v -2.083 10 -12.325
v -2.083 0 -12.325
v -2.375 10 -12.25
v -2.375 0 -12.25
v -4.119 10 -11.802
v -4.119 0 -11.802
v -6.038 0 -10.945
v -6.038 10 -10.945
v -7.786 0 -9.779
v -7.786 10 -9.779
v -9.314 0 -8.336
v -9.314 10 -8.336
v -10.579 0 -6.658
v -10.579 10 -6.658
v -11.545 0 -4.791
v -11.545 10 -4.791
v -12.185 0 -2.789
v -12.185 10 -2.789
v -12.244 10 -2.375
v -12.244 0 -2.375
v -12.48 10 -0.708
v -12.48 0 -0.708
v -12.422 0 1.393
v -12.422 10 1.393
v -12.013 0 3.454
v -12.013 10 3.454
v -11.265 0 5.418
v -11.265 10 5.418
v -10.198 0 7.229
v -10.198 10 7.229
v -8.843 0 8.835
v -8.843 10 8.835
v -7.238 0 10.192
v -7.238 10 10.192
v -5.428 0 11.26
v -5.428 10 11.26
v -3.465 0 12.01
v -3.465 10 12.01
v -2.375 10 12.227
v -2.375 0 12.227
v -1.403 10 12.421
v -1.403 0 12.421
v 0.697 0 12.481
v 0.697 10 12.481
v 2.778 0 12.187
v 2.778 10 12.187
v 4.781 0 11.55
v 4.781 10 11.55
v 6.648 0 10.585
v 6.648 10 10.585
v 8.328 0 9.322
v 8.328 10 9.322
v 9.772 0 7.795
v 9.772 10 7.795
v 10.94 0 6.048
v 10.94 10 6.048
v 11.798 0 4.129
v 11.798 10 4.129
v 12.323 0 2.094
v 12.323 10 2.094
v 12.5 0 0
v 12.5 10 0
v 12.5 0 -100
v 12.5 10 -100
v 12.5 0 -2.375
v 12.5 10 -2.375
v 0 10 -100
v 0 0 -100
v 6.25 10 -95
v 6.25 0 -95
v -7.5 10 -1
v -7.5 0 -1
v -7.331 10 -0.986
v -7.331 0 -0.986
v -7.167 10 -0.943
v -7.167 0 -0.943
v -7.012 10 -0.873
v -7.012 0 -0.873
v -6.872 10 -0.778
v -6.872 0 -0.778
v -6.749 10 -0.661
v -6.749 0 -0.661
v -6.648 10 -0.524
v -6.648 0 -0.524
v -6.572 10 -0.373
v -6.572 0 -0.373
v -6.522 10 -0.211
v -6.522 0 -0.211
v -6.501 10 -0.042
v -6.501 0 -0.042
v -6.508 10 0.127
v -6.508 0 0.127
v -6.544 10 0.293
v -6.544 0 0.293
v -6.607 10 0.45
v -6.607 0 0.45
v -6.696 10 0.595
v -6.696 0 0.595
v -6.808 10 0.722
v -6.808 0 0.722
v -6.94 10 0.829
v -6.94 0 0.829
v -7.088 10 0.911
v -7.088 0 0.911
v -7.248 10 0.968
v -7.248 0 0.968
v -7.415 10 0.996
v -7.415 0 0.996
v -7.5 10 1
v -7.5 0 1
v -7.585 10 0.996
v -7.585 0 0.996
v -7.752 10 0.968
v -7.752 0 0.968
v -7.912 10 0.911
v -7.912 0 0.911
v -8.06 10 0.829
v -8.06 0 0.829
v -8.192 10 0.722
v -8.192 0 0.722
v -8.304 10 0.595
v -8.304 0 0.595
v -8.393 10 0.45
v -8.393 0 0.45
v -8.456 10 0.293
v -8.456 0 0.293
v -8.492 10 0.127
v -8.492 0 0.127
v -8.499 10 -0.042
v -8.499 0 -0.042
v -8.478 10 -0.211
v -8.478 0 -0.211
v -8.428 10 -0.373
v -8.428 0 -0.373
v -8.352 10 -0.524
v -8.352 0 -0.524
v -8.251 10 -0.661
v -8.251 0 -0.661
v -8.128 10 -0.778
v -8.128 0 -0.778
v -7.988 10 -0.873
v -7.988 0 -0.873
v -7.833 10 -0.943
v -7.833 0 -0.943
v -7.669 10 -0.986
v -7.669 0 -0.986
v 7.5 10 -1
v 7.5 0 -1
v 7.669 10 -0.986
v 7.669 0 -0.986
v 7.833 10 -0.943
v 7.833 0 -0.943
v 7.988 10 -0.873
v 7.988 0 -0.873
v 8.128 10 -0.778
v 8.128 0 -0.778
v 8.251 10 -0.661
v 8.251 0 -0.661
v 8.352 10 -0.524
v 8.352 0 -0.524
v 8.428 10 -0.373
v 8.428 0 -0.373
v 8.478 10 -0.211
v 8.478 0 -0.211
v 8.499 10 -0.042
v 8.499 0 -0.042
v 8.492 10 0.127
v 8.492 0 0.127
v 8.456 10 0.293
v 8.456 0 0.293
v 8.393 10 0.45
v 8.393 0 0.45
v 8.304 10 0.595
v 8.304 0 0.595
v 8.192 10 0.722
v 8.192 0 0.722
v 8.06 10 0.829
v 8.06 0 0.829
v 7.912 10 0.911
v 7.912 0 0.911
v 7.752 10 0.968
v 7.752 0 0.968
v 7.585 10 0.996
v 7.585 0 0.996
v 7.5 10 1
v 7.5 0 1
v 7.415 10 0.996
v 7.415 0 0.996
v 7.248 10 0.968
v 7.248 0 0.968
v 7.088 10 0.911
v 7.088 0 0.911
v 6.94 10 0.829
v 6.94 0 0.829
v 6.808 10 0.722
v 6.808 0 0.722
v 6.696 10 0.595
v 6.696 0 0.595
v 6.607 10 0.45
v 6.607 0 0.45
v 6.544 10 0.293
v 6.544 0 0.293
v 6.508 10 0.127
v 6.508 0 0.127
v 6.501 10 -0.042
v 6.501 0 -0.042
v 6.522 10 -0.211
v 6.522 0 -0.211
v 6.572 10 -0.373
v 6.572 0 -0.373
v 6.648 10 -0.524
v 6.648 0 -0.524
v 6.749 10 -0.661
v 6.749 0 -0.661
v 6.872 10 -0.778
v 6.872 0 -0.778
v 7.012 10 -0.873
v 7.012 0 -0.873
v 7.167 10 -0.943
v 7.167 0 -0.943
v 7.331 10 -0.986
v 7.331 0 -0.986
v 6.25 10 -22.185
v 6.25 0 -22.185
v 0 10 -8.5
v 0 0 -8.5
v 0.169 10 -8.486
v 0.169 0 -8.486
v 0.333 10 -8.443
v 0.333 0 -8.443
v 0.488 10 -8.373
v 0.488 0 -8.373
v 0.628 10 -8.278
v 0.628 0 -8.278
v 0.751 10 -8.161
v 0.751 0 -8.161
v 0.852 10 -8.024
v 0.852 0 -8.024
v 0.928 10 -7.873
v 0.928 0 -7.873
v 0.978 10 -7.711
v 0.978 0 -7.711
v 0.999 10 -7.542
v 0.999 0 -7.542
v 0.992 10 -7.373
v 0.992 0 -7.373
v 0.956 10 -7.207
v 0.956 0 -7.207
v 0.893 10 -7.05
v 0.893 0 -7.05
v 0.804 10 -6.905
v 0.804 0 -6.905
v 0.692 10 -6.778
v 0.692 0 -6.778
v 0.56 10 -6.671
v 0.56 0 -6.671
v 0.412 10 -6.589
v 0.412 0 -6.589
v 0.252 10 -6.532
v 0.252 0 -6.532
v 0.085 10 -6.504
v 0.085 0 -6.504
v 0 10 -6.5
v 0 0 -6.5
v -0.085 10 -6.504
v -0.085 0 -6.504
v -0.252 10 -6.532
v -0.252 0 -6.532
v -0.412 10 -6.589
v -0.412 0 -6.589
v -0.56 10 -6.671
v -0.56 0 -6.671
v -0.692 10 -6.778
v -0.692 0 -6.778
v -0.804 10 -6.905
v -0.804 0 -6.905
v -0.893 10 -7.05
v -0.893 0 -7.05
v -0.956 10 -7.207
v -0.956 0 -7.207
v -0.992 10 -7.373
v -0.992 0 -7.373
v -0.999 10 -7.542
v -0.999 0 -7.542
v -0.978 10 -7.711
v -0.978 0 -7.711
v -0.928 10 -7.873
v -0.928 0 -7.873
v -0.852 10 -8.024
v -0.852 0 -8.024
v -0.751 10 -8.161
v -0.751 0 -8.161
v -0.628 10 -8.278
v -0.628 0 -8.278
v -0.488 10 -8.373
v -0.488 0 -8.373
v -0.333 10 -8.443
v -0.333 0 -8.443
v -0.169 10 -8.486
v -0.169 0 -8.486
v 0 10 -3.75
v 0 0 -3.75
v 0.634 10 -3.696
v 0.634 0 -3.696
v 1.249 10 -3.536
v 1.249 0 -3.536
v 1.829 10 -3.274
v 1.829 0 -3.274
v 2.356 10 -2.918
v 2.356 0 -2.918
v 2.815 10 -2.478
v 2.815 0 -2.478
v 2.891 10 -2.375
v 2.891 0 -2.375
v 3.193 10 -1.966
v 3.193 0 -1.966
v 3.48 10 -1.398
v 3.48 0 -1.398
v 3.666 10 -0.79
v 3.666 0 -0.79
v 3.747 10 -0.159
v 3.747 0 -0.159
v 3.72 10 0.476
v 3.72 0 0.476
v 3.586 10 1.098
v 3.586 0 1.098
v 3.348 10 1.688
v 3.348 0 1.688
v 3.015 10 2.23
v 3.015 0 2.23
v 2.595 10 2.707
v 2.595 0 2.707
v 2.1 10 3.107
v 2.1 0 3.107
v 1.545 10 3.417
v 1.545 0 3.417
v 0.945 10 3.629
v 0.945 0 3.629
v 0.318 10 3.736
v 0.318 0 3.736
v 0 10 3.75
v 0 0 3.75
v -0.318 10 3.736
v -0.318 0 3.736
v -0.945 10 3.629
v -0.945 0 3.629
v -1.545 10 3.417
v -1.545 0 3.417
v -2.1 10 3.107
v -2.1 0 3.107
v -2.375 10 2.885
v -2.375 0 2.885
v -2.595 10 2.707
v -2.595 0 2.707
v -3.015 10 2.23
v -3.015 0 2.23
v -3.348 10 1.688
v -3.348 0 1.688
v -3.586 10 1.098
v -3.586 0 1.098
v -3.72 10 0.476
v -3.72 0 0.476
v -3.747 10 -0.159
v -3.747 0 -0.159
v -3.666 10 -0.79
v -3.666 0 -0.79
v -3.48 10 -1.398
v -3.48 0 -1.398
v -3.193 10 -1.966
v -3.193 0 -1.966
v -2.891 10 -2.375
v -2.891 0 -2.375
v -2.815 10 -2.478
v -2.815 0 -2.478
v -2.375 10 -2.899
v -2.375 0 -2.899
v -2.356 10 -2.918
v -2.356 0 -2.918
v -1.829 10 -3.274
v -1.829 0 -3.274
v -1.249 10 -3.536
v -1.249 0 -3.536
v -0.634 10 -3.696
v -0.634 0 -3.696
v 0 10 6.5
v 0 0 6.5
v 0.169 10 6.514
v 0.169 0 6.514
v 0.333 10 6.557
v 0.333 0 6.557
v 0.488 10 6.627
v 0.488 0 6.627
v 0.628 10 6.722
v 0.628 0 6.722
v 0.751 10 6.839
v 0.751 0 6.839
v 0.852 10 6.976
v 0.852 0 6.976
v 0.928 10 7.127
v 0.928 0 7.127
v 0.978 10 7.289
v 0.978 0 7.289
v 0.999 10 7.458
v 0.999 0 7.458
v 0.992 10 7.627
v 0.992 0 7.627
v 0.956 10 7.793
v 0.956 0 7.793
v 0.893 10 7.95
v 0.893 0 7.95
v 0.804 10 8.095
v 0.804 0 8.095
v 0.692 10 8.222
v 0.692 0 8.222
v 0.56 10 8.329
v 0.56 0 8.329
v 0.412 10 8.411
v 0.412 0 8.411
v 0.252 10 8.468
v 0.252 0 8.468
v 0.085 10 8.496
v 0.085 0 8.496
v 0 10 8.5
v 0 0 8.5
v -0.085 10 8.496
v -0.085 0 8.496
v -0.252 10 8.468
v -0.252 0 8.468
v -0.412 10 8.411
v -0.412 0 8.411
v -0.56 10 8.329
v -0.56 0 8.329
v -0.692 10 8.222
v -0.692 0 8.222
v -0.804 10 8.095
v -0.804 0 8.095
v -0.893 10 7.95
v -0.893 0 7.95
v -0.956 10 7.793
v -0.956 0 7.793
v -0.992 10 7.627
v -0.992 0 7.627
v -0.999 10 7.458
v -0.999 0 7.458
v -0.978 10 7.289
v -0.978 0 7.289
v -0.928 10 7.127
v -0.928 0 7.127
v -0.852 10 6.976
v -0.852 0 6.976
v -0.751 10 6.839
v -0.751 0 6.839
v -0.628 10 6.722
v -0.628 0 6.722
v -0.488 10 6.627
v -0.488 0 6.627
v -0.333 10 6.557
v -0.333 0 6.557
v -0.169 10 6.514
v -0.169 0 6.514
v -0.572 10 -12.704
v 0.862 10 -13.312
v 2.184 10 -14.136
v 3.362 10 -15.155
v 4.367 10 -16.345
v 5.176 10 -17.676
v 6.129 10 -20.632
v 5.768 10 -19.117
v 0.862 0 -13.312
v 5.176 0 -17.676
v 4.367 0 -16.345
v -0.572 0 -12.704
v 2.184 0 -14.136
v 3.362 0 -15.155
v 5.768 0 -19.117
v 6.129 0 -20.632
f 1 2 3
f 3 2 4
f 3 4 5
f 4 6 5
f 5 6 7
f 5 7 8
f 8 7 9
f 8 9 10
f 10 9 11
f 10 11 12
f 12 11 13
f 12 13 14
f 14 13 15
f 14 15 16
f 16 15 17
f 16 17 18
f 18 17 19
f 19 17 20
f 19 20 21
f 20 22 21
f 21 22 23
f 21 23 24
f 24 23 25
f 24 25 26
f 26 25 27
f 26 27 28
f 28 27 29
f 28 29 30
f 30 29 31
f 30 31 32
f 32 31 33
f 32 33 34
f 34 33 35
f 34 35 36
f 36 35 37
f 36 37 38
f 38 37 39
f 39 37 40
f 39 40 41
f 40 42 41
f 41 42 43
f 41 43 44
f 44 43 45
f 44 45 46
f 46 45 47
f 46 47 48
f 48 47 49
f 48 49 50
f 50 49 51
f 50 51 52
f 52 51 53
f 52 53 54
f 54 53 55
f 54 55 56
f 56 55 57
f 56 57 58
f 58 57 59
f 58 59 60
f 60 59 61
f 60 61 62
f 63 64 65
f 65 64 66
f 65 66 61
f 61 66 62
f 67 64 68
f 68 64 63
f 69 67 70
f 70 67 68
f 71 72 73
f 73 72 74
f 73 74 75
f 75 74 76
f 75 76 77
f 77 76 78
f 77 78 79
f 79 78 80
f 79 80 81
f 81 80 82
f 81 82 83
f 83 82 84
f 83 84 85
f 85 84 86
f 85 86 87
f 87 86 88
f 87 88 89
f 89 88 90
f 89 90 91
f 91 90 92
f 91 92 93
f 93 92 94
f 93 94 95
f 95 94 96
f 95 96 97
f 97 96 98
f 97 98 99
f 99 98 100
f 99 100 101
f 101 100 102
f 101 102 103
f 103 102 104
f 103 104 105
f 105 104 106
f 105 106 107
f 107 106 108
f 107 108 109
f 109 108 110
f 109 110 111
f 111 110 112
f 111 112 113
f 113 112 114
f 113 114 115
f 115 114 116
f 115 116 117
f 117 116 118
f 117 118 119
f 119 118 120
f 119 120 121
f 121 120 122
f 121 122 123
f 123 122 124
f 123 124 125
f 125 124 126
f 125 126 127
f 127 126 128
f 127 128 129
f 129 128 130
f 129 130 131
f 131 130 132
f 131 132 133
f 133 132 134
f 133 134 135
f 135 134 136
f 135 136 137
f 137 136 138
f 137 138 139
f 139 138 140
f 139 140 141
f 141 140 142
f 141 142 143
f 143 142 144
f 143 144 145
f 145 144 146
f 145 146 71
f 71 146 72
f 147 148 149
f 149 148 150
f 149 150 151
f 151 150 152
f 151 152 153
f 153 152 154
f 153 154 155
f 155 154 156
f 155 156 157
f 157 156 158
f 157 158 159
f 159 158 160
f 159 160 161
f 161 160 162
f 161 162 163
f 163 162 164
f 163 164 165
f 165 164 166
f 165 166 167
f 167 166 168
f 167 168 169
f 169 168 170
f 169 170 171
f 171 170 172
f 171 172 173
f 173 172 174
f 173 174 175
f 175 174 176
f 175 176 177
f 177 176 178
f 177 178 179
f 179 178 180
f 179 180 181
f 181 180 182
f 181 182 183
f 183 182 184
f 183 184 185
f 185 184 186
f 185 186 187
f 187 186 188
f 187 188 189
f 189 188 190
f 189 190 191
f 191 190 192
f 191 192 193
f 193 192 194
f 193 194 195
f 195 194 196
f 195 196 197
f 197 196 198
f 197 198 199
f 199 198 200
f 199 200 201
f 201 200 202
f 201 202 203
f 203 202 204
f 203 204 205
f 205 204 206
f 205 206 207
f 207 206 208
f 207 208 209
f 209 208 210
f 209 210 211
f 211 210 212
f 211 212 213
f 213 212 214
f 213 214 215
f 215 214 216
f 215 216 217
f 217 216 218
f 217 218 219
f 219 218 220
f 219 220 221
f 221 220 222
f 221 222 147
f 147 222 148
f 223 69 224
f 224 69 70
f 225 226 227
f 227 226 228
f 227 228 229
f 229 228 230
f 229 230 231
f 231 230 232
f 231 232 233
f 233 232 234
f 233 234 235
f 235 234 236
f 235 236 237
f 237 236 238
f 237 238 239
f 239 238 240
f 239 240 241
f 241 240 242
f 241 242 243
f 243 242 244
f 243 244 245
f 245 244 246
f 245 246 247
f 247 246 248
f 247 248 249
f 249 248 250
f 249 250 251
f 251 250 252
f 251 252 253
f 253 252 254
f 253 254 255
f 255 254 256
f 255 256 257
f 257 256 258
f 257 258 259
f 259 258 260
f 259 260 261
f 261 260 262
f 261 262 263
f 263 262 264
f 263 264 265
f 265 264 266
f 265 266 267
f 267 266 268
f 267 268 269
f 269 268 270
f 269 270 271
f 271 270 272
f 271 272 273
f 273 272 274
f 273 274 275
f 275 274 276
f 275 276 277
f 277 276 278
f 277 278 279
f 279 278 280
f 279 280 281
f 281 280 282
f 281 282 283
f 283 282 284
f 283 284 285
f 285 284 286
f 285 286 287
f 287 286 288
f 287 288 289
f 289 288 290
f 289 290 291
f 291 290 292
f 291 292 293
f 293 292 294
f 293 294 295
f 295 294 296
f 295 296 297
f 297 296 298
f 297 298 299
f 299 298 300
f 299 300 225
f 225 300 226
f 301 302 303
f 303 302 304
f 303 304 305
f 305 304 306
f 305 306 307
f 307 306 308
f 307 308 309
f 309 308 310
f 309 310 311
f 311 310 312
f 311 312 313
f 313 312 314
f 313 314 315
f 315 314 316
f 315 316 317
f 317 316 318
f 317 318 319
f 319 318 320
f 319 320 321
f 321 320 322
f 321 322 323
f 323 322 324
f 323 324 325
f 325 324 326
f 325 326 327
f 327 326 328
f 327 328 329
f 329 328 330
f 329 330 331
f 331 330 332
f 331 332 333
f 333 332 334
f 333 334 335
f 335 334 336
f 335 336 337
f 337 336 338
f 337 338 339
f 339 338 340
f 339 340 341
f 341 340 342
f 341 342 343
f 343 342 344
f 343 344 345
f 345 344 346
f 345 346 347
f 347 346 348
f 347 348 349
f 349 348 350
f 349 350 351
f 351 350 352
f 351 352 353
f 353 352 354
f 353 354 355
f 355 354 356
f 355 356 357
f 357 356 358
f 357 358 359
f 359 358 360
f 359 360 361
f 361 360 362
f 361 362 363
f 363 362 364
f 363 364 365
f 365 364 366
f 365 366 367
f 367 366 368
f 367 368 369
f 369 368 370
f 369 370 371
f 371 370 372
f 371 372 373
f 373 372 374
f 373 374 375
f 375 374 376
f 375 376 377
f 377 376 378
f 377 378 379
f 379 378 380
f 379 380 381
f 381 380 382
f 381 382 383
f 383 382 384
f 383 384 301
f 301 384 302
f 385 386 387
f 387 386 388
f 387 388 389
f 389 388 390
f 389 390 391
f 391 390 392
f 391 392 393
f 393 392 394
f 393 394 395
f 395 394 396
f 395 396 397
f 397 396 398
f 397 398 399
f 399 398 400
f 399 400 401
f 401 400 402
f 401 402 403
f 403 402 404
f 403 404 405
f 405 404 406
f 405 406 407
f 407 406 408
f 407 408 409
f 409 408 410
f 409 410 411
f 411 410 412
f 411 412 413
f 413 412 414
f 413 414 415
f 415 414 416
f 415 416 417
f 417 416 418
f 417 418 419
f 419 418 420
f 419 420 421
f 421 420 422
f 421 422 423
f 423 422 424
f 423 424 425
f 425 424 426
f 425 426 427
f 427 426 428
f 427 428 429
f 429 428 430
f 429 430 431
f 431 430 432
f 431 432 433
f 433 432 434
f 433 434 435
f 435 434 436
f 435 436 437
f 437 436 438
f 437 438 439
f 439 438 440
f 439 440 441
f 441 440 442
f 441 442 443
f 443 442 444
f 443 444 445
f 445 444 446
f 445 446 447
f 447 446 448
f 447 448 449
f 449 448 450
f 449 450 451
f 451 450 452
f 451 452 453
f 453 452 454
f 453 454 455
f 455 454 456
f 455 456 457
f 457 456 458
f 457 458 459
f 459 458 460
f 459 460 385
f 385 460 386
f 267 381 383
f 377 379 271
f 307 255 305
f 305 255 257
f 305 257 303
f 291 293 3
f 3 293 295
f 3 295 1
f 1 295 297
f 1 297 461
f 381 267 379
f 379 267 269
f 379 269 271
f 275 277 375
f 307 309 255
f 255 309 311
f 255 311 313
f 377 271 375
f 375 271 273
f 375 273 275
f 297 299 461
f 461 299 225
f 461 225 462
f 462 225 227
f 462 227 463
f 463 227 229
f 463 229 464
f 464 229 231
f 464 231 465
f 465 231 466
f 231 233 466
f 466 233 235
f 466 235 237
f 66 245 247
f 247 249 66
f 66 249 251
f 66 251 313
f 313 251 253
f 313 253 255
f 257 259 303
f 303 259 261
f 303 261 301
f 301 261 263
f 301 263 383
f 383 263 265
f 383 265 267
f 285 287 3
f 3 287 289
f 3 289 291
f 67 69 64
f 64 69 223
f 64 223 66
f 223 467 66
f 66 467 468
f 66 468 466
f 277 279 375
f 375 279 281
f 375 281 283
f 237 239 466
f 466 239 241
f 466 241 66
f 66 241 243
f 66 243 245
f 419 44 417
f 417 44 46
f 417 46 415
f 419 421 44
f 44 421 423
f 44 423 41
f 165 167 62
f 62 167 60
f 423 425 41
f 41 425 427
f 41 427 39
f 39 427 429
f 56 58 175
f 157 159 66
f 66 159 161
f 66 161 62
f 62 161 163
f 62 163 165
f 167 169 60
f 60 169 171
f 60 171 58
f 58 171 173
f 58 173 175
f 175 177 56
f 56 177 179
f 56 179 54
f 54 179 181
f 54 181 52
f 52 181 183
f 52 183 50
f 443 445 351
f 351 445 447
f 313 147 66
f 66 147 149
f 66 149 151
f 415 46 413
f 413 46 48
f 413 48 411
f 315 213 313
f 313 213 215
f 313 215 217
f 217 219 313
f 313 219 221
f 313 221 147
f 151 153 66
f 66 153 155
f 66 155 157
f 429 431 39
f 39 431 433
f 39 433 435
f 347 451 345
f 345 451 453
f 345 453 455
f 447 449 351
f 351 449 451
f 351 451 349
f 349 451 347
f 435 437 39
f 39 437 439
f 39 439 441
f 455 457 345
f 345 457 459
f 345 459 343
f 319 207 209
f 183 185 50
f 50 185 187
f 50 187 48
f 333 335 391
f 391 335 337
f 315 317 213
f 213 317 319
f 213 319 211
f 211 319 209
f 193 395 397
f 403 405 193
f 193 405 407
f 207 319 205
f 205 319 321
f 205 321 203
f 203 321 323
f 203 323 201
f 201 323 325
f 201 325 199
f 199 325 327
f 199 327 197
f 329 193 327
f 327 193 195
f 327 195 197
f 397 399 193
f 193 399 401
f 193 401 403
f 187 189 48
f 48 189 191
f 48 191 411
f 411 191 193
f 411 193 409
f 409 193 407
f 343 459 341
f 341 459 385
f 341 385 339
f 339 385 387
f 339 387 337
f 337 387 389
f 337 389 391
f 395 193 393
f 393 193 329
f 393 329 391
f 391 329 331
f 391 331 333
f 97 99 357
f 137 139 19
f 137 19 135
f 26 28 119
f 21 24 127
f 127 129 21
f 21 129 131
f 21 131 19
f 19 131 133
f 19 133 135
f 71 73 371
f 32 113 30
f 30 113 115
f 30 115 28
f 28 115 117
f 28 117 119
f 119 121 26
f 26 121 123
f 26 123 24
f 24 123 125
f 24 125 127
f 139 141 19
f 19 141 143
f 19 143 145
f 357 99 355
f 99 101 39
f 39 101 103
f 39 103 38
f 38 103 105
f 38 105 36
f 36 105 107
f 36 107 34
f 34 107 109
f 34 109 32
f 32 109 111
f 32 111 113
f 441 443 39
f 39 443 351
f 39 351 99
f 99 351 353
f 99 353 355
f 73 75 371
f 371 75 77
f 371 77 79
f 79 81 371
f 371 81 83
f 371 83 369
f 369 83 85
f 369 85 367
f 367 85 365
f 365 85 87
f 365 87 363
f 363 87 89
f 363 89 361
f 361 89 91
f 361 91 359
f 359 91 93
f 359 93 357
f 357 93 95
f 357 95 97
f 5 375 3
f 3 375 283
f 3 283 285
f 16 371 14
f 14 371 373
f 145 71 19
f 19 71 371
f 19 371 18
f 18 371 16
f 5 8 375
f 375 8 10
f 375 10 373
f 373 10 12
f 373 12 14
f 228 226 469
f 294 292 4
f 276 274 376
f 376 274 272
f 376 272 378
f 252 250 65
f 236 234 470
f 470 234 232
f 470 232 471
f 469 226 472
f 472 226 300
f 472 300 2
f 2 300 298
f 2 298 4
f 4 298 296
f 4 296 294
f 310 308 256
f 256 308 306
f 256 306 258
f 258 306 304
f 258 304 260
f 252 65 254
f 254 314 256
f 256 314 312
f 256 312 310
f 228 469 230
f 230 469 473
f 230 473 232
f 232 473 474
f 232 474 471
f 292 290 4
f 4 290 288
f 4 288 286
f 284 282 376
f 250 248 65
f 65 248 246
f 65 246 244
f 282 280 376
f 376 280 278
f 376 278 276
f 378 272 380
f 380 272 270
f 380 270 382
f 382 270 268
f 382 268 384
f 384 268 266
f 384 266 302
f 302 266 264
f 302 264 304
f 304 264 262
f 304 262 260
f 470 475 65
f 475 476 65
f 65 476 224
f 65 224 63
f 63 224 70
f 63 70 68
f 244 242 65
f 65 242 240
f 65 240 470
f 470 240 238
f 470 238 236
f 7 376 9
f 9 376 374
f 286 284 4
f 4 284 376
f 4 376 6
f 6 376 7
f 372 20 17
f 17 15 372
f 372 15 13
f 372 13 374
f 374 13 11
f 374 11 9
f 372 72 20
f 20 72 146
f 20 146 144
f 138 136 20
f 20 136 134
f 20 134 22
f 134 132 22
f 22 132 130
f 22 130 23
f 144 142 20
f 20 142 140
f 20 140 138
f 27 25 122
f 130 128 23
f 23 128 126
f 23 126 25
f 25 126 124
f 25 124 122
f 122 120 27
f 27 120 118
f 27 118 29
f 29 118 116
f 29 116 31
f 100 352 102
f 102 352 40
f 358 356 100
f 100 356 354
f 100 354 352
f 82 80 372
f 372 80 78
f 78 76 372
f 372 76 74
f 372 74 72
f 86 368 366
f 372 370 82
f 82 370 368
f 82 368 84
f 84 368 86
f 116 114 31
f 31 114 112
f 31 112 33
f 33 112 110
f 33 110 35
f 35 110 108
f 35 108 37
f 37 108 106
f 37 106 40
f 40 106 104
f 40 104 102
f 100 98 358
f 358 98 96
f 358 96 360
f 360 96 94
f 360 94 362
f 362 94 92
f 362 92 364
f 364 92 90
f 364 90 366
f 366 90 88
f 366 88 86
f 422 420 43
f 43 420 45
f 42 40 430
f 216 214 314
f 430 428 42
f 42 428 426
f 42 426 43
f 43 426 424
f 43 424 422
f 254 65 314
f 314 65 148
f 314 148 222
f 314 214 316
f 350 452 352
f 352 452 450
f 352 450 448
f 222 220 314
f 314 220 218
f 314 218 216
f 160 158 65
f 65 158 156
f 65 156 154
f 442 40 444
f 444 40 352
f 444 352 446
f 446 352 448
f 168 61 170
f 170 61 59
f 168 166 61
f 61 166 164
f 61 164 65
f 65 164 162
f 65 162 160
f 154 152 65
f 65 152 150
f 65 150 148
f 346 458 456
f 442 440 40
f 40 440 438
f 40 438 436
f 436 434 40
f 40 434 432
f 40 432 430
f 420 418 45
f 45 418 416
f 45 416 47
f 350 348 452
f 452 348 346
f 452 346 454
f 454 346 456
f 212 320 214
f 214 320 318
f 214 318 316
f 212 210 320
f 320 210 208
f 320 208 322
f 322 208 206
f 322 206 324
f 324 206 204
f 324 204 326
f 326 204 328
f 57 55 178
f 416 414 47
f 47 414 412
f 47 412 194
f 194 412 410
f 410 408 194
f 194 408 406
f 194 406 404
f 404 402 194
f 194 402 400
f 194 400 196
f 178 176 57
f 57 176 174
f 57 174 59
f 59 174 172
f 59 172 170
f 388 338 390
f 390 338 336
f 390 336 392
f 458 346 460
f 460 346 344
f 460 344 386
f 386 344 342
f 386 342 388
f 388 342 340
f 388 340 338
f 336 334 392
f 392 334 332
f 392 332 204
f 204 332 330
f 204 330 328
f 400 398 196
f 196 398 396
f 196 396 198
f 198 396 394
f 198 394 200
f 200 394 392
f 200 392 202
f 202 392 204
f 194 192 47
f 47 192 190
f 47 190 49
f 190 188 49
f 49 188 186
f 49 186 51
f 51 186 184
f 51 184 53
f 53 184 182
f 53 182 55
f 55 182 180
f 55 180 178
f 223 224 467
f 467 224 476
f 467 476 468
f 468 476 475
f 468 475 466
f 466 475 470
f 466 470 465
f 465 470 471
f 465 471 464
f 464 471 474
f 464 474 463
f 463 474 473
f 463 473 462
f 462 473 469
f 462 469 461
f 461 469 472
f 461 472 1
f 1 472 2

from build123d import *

# Parameters (mm, degrees)
CROQUIS1_R              = 1
SALIENTE_EXTRUIR1_DEPTH = 10
REDONDEO1_R             = 10


with BuildPart() as part:
    # Croquis1 → Saliente-Extruir1 (new body)
    with BuildSketch(Plane(origin=(0, 0, 0), x_dir=(1, 0, 0), z_dir=(0, 1, 0))):
        with BuildLine():
            Line((0, 100), (6.25, 95))
            Line((6.25, 95), (6.25, 10.825317547))
            ThreePointArc((6.25, 10.825317547), (10.825317547, 6.25), (12.5, 0))
            Line((12.5, 0), (12.5, 100))
            Line((12.5, 100), (0, 100))
        make_face()
        with BuildLine():
            ThreePointArc((12.5, 0), (10.825317547, 6.25), (6.25, 10.825317547))
            Line((6.25, 10.825317547), (6.25, 0))
            Line((6.25, 0), (6.5, 0))
            ThreePointArc((6.5, 0), (7.5, 1), (8.5, 0))
            Line((8.5, 0), (12.5, 0))
        make_face()
        with BuildLine():
            Line((6.25, 0), (6.25, 10.825317547))
            ThreePointArc((6.25, 10.825317547), (3.235238064, 12.074072829), (0, 12.5))
            Line((0, 12.5), (0, 8.5))
            ThreePointArc((0, 8.5), (0.707106781, 8.207106781), (1, 7.5))
            ThreePointArc((1, 7.5), (0.707106781, 6.792893219), (0, 6.5))
            Line((0, 6.5), (0, 3.75))
            ThreePointArc((0, 3.75), (2.651650429, 2.651650429), (3.75, 0))
            Line((3.75, 0), (6.25, 0))
        make_face()
        with BuildLine():
            Line((0, 8.5), (0, 12.5))
            ThreePointArc((0, 12.5), (-8.838834765, -8.838834765), (12.5, 0))
            Line((12.5, 0), (8.5, 0))
            ThreePointArc((8.5, 0), (7.5, -1), (6.5, 0))
            Line((6.5, 0), (6.25, 0))
            Line((6.25, 0), (3.75, 0))
            ThreePointArc((3.75, 0), (-2.651650429, -2.651650429), (0, 3.75))
            Line((0, 3.75), (0, 6.5))
            ThreePointArc((0, 6.5), (-1, 7.5), (0, 8.5))
        make_face()
        with Locations((-7.5, 0)):
            Circle(CROQUIS1_R, mode=Mode.SUBTRACT)
        with Locations((0, -7.5)):
            Circle(CROQUIS1_R, mode=Mode.SUBTRACT)
    extrude(amount=SALIENTE_EXTRUIR1_DEPTH)

    # Redondeo1
    redondeo1_edges = [part.edges().sort_by_distance(p)[0] for p in [
        (6.25, 5, -10.825317547),
    ]]
    fillet(redondeo1_edges, radius=REDONDEO1_R)


solid = part.part
